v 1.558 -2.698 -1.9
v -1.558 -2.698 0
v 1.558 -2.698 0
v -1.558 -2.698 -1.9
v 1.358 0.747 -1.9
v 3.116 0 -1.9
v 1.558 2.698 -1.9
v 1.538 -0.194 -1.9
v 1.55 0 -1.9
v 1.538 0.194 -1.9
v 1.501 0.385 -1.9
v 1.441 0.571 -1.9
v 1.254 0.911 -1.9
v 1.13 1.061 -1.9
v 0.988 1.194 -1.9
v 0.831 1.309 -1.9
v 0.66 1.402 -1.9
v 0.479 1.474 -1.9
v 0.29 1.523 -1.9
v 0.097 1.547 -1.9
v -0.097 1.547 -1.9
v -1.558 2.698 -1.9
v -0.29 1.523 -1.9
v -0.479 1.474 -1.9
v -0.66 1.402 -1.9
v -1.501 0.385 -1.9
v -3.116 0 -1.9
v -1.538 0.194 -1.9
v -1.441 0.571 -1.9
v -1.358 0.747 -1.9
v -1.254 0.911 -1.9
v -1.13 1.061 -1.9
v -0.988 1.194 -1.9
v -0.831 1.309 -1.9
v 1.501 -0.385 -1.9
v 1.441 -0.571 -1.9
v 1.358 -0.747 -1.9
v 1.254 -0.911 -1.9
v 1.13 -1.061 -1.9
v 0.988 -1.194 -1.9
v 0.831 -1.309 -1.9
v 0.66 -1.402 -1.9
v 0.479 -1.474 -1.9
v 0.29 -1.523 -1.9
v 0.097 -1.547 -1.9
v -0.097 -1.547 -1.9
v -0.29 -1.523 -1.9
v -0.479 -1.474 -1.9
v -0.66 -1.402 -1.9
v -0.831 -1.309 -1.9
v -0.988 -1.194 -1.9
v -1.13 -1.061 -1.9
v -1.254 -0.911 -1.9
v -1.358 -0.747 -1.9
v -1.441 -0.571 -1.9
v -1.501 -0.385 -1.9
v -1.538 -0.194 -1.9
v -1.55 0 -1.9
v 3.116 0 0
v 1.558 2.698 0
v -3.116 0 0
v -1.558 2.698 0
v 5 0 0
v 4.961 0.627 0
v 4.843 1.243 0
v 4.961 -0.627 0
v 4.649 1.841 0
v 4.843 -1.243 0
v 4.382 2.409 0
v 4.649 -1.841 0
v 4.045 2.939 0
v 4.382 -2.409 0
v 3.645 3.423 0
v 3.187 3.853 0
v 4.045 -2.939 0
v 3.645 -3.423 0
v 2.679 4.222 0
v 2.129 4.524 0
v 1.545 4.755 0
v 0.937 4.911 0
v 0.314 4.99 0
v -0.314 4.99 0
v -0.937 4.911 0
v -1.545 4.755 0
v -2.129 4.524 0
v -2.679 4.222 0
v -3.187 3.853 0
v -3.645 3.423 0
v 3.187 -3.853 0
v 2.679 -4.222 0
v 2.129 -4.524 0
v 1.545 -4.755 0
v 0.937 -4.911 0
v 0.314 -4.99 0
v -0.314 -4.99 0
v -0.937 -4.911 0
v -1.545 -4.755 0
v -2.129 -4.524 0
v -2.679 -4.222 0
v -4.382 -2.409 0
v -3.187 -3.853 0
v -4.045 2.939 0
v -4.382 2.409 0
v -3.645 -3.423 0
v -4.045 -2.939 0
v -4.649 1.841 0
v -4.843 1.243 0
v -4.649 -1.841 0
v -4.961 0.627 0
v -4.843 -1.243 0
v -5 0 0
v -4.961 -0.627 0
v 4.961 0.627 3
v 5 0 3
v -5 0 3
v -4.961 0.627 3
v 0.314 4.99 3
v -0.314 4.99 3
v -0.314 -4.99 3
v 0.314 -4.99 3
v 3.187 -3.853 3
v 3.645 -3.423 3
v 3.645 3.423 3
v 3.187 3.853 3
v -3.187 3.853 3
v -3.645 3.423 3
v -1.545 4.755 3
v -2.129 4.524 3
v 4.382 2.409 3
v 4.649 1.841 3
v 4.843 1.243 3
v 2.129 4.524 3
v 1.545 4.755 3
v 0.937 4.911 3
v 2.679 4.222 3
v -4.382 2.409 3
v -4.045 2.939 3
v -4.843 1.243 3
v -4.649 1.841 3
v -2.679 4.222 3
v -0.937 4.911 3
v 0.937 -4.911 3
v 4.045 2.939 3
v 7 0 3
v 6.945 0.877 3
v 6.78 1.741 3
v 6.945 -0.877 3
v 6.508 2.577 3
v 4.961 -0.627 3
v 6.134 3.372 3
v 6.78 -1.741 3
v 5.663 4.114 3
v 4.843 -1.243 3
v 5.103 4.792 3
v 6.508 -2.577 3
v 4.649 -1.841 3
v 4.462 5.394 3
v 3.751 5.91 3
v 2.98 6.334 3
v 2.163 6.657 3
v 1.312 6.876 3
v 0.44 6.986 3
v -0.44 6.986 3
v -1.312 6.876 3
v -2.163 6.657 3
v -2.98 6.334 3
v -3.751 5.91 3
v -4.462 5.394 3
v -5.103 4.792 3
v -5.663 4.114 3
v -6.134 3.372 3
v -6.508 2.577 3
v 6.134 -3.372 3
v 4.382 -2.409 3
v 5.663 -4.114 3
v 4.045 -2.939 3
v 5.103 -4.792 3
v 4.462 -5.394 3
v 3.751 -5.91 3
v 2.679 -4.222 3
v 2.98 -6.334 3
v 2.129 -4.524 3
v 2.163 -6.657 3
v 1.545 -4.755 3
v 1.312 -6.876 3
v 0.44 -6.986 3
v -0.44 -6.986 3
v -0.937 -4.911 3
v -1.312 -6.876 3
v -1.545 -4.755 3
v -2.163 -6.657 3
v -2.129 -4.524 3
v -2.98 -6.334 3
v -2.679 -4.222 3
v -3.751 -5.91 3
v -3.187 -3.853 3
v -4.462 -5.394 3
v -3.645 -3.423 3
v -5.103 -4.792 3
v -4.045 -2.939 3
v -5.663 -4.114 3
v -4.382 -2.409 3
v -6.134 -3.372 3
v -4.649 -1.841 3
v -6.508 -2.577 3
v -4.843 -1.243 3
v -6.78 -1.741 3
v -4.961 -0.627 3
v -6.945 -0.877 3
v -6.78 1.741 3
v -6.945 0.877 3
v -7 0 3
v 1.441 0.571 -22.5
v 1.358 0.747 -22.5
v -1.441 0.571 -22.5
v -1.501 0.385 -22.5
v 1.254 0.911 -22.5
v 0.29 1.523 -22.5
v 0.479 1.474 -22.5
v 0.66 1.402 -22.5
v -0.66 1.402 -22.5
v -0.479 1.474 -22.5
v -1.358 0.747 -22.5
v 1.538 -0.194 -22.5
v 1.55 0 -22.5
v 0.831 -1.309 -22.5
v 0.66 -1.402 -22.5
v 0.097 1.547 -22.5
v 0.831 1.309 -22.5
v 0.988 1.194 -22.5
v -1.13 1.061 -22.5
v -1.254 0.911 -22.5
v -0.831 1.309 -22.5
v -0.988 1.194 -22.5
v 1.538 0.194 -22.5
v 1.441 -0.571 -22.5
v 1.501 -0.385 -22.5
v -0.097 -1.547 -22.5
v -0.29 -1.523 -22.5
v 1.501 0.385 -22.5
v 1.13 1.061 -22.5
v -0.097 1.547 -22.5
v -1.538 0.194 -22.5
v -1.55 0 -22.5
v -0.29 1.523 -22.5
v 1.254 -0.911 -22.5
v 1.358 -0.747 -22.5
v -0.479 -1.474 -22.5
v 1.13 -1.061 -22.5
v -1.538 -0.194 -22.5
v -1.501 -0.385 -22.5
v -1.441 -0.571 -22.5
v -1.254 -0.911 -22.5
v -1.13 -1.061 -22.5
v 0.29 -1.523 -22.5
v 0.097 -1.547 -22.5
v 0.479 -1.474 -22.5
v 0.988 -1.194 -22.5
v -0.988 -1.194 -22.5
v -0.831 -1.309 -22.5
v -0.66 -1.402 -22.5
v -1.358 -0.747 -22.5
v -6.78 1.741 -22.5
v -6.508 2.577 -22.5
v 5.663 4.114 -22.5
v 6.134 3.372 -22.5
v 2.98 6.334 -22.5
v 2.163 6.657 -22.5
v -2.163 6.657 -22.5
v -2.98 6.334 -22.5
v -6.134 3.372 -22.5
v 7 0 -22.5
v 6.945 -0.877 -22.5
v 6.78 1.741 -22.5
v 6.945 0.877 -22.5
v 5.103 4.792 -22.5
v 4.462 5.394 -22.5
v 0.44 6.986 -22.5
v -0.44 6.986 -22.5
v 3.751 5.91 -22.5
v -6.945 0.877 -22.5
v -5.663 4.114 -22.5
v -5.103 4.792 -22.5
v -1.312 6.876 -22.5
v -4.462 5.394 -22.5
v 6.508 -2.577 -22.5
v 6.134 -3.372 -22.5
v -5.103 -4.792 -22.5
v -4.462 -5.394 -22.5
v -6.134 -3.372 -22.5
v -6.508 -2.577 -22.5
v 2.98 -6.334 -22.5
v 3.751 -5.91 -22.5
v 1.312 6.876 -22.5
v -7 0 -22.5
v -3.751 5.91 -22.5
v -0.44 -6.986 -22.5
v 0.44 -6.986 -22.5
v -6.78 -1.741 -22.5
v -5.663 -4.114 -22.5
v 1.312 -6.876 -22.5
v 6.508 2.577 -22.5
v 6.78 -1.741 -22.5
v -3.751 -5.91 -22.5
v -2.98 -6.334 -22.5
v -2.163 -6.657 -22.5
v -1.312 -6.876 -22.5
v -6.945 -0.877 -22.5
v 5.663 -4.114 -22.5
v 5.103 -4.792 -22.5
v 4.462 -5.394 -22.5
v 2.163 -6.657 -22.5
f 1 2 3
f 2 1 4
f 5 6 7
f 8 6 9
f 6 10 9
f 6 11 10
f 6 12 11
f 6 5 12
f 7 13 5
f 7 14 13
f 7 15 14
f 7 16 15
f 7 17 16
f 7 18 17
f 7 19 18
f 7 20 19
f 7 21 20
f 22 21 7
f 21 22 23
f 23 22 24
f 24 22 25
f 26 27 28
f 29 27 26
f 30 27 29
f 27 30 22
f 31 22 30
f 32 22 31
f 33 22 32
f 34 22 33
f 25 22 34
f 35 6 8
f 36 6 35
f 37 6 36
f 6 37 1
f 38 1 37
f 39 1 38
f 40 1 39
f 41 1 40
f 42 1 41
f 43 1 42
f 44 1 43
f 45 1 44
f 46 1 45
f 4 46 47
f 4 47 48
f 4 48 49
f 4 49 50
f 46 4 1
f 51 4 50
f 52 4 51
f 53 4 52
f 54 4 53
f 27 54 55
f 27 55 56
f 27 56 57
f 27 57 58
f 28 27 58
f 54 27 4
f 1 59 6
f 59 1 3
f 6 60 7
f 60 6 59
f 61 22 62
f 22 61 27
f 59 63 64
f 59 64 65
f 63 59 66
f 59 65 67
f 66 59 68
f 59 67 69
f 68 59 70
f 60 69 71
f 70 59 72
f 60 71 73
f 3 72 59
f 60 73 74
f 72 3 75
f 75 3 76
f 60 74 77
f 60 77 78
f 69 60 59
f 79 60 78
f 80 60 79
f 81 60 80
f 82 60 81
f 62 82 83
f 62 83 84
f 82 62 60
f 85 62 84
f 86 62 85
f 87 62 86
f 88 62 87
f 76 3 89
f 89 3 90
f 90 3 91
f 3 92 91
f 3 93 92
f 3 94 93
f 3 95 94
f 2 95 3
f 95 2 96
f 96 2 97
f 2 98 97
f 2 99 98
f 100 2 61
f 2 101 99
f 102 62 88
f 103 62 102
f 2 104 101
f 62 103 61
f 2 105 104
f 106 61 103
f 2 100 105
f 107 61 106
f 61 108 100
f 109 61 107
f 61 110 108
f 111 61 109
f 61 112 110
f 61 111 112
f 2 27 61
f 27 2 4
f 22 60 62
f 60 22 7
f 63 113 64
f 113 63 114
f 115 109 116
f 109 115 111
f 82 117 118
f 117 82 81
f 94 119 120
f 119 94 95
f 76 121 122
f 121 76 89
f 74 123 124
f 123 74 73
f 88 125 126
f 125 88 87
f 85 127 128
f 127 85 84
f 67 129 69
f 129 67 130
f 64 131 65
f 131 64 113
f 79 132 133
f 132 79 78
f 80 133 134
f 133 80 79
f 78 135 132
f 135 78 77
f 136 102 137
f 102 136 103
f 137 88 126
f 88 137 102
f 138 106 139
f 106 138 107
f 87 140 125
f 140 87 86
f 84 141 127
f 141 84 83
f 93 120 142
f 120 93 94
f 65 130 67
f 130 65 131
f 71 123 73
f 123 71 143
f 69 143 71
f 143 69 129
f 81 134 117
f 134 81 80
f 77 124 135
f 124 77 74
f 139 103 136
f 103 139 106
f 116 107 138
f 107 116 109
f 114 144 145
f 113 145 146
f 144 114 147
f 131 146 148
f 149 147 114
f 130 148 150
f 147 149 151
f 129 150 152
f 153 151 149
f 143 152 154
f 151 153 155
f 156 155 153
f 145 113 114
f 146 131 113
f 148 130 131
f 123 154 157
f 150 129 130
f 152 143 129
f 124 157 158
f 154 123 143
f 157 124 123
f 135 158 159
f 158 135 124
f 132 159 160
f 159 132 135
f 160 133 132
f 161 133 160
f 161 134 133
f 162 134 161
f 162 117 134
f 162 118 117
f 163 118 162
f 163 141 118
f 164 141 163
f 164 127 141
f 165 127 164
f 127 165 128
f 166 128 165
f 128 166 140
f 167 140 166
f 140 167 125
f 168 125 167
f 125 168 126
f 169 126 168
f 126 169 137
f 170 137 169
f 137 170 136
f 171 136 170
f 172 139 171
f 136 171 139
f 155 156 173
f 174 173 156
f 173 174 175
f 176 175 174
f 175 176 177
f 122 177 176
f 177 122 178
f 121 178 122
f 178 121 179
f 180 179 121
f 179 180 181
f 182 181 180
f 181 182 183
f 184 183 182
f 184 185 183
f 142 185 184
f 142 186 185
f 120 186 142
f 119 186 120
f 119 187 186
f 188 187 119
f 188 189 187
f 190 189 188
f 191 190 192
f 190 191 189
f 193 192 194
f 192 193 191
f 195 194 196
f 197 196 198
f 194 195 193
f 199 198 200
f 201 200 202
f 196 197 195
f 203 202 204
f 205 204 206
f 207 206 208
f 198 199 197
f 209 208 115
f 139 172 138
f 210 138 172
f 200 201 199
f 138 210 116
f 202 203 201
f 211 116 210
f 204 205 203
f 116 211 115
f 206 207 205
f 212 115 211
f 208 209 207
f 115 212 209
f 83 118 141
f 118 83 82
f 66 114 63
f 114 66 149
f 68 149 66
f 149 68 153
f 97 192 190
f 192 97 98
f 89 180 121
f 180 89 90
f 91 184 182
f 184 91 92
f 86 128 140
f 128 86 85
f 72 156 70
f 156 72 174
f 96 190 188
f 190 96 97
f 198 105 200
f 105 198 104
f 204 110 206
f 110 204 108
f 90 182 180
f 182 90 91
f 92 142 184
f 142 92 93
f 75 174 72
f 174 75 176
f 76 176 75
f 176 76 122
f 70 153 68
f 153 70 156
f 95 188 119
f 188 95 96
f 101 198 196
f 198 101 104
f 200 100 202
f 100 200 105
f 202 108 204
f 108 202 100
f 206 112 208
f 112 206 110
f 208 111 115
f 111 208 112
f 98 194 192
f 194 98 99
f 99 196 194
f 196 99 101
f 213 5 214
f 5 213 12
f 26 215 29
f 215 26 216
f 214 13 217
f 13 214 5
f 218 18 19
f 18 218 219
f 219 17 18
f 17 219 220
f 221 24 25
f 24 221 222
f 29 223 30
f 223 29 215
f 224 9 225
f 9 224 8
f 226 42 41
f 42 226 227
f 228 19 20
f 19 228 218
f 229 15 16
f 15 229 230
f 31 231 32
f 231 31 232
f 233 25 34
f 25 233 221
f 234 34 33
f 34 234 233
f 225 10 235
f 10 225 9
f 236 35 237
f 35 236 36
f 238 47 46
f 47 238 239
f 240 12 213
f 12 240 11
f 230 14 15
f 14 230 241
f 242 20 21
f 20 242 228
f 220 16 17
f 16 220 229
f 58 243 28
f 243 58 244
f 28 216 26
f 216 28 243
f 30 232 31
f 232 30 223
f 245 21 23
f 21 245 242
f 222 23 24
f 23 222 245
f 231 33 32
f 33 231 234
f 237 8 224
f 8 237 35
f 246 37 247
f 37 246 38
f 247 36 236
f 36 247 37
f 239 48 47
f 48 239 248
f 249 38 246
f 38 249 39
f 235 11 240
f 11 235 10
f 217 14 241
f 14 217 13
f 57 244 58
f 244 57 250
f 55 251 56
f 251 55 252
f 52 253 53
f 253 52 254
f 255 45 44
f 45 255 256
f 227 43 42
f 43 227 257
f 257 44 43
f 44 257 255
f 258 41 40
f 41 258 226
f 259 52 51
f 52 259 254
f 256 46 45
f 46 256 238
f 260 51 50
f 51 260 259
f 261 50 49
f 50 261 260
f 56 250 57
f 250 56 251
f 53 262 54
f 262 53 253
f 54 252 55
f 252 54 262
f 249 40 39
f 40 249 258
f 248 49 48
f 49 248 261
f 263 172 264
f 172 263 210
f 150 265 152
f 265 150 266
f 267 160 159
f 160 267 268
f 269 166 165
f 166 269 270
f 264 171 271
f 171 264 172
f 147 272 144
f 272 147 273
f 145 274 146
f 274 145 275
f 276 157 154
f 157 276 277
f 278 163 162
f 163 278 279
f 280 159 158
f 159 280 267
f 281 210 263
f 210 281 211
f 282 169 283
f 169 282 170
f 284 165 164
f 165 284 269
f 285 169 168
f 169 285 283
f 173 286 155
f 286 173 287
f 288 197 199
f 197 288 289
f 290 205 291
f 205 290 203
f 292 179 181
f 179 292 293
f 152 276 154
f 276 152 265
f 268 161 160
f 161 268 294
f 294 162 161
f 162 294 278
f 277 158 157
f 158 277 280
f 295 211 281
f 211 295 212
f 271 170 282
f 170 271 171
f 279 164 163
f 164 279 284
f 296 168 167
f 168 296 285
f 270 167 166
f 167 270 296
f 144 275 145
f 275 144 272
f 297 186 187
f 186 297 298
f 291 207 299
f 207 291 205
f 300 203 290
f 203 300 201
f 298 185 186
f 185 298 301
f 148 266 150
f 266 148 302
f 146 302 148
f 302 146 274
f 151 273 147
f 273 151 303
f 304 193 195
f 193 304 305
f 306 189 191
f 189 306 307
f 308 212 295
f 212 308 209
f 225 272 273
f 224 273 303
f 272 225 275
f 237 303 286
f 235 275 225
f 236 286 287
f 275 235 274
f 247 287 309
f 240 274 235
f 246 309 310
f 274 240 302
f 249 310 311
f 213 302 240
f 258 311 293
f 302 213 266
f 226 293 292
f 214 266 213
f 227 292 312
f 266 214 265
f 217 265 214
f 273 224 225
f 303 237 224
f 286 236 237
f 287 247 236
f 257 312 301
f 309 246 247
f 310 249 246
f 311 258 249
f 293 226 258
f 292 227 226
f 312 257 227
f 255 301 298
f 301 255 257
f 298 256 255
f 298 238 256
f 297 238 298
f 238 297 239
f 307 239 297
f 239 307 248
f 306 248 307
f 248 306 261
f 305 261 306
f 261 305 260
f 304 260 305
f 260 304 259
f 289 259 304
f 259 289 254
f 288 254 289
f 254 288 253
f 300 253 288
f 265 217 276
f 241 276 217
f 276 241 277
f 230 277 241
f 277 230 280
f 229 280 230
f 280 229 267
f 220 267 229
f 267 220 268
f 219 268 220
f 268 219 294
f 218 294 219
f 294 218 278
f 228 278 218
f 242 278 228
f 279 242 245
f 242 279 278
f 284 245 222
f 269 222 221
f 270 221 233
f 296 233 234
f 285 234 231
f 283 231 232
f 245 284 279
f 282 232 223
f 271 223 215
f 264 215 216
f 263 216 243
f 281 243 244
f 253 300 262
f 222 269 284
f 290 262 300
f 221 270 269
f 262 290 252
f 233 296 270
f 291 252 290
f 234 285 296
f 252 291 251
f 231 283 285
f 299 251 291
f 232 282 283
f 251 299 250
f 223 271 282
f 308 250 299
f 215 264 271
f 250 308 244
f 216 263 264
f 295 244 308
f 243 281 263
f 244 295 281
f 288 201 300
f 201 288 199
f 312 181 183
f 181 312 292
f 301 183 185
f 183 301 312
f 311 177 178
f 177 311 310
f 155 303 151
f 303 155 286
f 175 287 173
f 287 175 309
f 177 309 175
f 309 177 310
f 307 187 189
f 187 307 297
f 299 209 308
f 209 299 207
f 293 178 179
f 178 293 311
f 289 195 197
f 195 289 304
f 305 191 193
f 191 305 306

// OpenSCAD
$fn = 50;

difference() {
	union() {
		translate(v = [0, 0, -22.5]) {
			cylinder(h = 25.5, r = 7.0);
		}
	}
	union() {
		translate(v = [0, 0, 0]) {
			rotate(a = [0, 0, 0]) {
				difference() {
					union() {
						translate(v = [0, 0, -1.9]) {
							linear_extrude(height = 1.9) {
								polygon(points = [[3.1158, 0.0], [1.5579000000000005, 2.698361953111554], [-1.5578999999999994, 2.6983619531115544], [-3.1158, 3.815754496783323e-16], [-1.5579000000000014, -2.6983619531115535], [1.557899999999998, -2.6983619531115552]]);
							}
						}
					}
					union();
				}
			}
		}
		#cylinder(h = 3, r = 5.0);
		#translate(v = [0, 0, -100.0]) {
			cylinder(h = 200, r = 1.55);
		}
	}
}
